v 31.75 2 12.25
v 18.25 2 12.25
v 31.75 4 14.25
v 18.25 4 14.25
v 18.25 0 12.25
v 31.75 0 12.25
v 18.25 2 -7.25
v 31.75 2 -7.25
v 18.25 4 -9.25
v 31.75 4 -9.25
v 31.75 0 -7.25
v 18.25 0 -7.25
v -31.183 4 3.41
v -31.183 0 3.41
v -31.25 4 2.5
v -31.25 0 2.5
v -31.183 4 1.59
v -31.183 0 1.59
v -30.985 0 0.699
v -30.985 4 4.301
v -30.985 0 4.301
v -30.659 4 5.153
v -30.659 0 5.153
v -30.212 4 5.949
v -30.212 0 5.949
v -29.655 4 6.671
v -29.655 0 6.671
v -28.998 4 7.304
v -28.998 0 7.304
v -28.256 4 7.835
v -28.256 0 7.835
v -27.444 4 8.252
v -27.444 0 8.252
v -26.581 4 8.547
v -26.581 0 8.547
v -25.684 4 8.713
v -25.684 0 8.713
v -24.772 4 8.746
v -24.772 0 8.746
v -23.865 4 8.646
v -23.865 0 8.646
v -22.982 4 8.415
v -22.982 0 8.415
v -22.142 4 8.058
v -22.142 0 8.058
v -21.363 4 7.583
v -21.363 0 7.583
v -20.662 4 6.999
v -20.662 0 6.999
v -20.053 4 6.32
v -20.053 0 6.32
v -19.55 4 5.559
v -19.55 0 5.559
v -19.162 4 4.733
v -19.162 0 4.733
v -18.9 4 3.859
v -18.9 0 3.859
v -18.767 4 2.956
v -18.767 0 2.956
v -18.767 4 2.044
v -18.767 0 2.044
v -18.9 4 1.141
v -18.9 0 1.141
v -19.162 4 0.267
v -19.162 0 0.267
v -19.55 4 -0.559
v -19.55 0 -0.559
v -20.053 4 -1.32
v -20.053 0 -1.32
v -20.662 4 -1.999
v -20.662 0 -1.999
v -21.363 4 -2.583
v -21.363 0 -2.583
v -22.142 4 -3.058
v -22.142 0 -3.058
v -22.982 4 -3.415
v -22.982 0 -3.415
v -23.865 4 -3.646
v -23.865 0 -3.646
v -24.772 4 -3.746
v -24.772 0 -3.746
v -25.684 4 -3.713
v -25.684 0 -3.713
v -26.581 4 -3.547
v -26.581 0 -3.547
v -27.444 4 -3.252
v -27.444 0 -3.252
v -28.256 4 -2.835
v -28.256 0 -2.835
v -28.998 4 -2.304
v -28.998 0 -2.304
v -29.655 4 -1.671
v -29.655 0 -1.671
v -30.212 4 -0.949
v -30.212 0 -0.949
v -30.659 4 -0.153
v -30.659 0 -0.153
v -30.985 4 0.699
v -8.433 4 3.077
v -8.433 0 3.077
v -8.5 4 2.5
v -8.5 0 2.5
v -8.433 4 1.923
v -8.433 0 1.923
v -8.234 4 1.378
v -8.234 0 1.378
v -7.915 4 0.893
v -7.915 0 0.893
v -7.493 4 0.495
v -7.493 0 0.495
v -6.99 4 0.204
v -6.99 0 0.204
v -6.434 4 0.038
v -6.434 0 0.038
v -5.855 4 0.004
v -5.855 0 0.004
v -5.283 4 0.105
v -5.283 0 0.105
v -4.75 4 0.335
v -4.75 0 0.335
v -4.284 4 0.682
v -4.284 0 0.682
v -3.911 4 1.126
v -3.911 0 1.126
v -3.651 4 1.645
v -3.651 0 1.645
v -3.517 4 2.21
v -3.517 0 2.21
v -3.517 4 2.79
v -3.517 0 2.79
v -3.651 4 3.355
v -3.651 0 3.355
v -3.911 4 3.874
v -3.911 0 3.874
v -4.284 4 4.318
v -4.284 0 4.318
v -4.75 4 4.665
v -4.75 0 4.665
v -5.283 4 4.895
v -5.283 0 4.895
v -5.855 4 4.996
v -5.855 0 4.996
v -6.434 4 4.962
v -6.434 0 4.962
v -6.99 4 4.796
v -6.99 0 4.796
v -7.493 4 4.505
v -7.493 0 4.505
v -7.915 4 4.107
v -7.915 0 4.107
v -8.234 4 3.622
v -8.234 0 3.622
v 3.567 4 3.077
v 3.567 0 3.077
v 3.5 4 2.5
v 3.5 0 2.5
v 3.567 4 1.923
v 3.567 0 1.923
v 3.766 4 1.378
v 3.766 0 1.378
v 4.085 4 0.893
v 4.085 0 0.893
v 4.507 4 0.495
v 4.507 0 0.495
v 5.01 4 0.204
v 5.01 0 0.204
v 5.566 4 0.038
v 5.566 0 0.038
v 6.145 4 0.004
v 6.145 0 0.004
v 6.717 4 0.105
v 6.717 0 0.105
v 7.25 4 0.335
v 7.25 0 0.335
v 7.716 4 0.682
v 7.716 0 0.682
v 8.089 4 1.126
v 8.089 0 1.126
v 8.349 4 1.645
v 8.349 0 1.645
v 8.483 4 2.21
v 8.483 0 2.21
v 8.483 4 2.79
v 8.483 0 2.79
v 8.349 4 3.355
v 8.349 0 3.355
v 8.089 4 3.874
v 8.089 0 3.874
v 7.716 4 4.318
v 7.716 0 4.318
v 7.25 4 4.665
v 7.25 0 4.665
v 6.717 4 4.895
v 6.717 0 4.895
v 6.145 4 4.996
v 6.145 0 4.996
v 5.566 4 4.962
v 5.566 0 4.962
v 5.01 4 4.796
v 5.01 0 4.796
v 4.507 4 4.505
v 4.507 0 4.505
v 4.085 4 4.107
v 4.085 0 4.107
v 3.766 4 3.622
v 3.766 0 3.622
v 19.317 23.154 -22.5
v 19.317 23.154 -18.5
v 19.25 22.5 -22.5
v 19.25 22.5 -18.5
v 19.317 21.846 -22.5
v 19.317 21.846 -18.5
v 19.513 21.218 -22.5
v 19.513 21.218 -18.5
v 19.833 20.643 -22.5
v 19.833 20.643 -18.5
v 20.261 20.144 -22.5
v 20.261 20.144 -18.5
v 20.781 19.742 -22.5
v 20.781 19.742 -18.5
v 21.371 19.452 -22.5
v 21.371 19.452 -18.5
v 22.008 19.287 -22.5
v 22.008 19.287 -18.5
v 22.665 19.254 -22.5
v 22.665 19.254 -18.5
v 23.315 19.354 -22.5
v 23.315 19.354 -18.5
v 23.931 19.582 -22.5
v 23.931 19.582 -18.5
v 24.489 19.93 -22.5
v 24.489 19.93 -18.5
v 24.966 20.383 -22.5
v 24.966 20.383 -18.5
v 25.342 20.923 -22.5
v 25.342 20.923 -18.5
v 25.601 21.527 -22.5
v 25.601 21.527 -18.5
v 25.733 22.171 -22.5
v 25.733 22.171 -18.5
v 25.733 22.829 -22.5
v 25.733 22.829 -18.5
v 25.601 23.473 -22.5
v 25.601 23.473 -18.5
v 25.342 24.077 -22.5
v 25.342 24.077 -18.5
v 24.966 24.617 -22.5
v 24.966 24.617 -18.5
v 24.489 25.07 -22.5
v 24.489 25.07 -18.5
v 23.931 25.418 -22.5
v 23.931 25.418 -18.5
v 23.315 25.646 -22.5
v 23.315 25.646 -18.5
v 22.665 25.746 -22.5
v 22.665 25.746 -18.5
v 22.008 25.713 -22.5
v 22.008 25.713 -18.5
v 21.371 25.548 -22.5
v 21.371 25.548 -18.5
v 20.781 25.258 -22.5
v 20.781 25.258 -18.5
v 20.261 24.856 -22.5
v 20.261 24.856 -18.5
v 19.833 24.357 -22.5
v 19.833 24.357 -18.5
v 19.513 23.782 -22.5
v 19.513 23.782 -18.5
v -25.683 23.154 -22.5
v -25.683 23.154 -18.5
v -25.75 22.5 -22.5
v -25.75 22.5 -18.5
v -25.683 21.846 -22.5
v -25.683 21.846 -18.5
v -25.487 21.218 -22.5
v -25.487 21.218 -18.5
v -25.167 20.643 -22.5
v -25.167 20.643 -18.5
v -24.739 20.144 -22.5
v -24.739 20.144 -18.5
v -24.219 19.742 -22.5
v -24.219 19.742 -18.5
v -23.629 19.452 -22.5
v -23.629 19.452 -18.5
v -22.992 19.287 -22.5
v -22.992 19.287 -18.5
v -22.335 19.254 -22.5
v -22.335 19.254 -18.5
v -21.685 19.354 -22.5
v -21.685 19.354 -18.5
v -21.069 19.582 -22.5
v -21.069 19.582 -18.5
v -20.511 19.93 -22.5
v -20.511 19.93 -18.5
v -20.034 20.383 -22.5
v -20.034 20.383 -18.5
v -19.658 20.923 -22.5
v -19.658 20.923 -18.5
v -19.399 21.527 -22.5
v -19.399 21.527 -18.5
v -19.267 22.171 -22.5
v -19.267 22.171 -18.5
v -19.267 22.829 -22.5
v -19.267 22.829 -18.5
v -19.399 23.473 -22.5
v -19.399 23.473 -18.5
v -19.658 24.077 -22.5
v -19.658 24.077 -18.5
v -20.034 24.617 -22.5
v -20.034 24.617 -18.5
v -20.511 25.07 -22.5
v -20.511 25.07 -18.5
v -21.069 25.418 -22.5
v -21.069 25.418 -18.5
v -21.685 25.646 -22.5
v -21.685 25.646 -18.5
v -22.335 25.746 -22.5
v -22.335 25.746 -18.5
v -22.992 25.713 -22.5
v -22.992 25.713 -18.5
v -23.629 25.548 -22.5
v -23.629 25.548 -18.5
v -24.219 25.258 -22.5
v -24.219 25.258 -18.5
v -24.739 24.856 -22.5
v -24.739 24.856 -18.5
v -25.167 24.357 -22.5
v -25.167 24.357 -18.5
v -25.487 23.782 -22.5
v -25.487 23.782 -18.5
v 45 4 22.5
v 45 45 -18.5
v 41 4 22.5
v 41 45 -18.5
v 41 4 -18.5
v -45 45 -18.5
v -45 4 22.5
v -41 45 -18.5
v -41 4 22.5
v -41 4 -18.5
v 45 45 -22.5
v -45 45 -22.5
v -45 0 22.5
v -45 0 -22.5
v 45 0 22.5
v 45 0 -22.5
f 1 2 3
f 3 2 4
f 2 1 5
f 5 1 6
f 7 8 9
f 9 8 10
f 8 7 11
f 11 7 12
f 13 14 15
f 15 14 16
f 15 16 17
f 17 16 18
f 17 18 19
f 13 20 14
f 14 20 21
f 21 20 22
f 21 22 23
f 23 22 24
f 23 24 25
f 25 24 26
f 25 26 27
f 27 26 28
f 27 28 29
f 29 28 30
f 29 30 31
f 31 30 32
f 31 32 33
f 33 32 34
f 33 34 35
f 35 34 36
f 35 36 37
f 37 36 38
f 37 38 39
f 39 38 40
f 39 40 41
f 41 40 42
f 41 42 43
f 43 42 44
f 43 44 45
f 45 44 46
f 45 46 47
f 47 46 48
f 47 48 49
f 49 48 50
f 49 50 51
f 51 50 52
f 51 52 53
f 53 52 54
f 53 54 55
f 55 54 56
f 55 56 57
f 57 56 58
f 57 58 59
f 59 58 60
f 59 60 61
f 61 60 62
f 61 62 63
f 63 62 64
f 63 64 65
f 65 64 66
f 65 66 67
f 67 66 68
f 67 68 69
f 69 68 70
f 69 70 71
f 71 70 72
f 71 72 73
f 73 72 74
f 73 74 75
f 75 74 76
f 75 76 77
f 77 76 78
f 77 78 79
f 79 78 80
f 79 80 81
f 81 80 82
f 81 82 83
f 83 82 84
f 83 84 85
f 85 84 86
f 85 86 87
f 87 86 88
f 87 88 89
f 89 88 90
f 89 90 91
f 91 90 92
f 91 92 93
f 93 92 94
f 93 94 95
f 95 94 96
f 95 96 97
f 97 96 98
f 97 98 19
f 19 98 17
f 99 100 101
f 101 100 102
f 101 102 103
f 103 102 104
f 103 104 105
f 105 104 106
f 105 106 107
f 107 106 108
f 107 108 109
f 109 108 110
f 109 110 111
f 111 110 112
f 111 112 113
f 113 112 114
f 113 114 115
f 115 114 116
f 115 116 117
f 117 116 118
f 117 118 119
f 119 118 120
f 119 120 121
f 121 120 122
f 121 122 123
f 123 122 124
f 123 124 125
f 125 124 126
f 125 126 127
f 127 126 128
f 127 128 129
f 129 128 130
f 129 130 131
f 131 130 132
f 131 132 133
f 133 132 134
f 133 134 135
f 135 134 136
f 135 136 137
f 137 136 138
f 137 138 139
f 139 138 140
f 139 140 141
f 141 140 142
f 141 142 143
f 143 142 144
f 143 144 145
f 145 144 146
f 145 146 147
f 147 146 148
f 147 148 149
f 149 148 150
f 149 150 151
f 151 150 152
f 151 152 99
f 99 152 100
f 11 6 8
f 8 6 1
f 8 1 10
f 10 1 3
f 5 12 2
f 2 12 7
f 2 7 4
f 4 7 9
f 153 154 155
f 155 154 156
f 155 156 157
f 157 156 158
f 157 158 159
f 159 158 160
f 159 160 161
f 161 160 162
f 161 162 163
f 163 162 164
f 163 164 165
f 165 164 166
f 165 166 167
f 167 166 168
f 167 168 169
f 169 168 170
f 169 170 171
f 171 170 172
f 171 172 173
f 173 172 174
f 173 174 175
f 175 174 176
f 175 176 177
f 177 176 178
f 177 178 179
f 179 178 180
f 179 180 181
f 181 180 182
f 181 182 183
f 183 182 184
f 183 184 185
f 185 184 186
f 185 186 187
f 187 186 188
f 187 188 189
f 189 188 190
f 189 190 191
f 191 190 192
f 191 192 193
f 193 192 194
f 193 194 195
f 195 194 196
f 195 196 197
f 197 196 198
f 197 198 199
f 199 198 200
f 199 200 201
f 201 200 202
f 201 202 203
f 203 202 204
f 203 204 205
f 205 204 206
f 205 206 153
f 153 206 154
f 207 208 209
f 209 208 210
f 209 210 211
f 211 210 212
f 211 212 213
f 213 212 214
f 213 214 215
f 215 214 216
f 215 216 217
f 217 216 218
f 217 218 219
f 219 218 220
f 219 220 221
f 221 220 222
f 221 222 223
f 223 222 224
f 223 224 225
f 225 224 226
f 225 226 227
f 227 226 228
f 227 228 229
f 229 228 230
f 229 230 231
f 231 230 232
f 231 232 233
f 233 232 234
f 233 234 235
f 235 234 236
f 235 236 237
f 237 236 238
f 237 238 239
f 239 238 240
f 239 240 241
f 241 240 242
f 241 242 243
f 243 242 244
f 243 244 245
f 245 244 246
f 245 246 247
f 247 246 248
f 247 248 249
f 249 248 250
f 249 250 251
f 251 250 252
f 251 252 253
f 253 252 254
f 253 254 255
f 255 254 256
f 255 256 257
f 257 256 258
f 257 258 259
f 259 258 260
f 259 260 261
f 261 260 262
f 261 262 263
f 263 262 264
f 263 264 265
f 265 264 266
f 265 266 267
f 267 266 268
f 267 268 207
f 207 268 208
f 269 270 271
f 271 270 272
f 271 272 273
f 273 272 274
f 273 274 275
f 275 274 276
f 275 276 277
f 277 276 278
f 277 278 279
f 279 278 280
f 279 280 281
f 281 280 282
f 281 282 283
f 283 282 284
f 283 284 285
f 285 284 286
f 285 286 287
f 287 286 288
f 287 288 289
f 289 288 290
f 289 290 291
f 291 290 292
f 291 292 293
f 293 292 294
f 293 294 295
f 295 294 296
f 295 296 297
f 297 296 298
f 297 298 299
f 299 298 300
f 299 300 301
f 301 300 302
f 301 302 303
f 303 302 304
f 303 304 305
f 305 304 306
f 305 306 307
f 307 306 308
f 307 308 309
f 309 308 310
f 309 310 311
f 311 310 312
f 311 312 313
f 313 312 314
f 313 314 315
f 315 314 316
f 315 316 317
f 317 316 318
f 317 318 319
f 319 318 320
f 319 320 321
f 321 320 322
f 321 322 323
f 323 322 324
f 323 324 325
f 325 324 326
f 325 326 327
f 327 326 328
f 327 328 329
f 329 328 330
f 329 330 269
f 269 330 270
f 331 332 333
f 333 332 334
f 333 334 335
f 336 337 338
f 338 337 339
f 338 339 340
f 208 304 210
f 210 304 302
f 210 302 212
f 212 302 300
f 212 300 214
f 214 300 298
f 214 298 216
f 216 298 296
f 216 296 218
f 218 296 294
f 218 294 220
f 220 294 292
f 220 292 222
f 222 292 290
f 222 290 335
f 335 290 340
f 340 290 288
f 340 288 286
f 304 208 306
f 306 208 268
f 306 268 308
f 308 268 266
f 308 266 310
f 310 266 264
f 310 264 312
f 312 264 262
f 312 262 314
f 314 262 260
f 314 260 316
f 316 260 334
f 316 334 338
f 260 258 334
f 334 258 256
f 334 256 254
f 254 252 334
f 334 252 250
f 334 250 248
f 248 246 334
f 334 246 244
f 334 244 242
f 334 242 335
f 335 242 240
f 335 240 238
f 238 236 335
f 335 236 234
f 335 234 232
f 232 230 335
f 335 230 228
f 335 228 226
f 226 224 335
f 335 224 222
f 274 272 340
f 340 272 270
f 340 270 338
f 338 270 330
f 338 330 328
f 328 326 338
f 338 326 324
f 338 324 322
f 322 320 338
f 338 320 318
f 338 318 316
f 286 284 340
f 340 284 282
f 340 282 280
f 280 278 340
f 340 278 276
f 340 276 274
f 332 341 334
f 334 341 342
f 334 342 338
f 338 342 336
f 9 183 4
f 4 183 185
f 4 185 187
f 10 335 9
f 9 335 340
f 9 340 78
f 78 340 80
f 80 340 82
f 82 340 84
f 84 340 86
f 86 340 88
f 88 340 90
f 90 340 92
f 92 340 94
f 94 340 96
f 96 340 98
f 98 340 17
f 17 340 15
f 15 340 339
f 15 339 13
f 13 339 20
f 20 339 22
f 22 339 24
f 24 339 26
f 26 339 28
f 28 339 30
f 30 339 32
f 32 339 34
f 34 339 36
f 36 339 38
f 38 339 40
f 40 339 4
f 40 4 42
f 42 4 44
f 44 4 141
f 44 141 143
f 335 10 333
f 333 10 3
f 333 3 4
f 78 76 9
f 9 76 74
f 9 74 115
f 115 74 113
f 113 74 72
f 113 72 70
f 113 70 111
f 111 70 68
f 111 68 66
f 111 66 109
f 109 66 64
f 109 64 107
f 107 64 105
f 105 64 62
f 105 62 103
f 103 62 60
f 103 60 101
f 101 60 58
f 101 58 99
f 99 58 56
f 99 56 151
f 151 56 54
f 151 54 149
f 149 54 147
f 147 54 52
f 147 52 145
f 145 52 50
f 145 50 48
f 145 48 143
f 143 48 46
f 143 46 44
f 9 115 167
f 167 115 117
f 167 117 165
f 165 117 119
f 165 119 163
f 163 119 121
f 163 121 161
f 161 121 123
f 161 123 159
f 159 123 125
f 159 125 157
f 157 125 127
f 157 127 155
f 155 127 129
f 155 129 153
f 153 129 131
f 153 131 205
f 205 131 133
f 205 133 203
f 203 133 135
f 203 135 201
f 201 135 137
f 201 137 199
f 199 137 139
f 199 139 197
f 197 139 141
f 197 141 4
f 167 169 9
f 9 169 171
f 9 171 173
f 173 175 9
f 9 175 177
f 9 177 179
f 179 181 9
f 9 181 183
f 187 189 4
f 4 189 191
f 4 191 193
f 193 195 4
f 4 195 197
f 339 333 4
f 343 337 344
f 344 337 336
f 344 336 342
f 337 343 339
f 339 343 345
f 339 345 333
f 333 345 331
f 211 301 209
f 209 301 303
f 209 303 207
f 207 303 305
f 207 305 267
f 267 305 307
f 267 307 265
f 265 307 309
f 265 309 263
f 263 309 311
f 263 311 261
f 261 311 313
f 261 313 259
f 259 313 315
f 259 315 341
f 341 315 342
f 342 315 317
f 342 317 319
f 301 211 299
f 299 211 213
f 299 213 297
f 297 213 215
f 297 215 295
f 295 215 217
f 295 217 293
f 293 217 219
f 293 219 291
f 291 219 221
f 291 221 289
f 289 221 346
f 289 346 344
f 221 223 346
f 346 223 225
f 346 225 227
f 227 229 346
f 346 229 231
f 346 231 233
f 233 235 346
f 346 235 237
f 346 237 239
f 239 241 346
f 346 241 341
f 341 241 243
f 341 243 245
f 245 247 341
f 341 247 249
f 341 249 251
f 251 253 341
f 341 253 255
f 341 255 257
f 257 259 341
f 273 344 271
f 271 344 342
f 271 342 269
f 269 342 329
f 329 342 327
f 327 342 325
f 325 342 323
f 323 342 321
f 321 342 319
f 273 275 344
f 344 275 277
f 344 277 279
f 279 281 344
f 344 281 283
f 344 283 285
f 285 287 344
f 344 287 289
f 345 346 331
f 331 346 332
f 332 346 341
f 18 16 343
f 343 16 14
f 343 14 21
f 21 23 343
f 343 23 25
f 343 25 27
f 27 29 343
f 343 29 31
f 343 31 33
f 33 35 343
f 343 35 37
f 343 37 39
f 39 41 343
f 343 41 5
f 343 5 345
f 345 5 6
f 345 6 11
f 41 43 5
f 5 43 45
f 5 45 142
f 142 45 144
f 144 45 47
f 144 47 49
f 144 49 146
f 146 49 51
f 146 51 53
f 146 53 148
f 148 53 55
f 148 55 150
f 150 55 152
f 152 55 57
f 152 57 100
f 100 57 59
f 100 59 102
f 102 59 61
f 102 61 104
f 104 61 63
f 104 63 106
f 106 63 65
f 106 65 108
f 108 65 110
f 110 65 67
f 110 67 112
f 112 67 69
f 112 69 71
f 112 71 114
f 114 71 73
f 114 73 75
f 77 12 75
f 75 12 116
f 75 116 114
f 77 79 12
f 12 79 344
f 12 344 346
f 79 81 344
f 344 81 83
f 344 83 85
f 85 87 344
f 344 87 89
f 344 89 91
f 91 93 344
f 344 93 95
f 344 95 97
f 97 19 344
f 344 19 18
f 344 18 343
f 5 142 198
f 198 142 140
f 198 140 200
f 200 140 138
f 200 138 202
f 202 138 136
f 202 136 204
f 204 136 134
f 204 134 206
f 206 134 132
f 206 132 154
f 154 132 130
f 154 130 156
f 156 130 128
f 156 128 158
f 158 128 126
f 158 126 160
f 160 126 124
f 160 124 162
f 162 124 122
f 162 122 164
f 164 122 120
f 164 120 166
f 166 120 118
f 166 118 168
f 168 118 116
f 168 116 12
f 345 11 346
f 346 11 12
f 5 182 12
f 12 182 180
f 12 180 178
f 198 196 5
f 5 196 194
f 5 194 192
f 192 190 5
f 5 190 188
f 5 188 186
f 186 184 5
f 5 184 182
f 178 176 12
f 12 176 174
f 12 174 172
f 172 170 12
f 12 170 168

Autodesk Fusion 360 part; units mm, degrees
sketch "Sketch1" plane through (0, 0, 0) normal (0, 1, 0) x (1, 0, 0)
  line L0 (45, 22.5) -> (-45, 22.5)
  line L1 (-45, 22.5) -> (-45, -22.5)
  line L2 (-45, -22.5) -> (45, -22.5)
  line L3 (45, -22.5) -> (45, 22.5)
  line L4 (45, 22.5) -> (-45, -22.5) construction
  line L5 (-45, 22.5) -> (45, -22.5) construction
  dimension "d1" = 45
  dimension "d2" = 90
extrude "Extrude1" add sketch "Sketch1" along normal blind 4
sketch "Sketch2" plane through (0, 0, -22.5) normal (0, 0, -1) x (-1, 0, 0)
  line L0 (45, 0) -> (-45, 0)
  line L1 (-45, 0) -> (-45, 45)
  line L2 (-45, 45) -> (45, 45)
  line L3 (45, 45) -> (45, 0)
  point P0 (-45, 0)
  point P1 (45, 0)
  dimension "d12" = 45
extrude "Extrude4" add sketch "Sketch2" against normal blind 4
sketch "Sketch3" plane through (-45, 0, 0) normal (-1, 0, 0) x (0, 0, 1)
  line L0 (-22.5, 0) -> (22.5, 0)
  line L1 (22.5, 0) -> (22.5, 4)
  line L2 (22.5, 4) -> (-18.5, 4)
  line L3 (-22.5, 45) -> (-22.5, 0)
  line L4 (-18.5, 45) -> (-18.5, 4)
  line L5 (22.5, 4) -> (-18.5, 45)
  line L6 (-18.5, 4) -> (-18.5, 45)
  line L7 (-18.5, 45) -> (-22.5, 45)
extrude "Extrude3" add sketch "Sketch3" against normal blind 4 contours L2 L4 L5 L6
mirror "Mirror1" about plane through (0, 0, 0) normal (1, 0, 0) of "Extrude3"
sketch "Sketch4" plane through (0, 0, -18.5) normal (0, 0, 1) x (1, 0, 0)
  line L0 (41, 4) -> (41, 45)
  line L1 (41, 45) -> (-41, 45)
  line L2 (-41, 45) -> (-41, 4)
  line L3 (-41, 4) -> (41, 4)
  circle A0 centre (-22.5, 22.5) radius 3.25
  line L4 (-22.5, 22.5) -> (-16, 22.5) construction
  line L5 (45, 45) -> (-45, 45)
  line L6 (-45, 0) -> (45, 0)
  line L7 (0, 0) -> (0, 21) construction
  circle A1 centre (22.5, 22.5) radius 3.25
  dimension "d15" = 6.5
  dimension "d16" = 45
extrude "Extrude5" cut sketch "Sketch4" against normal through all contours A0 | A1
sketch "Sketch5" plane through (0, 0, 0) normal (0, -1, 0) x (1, 0, 0)
  line L0 (45, -22.5) -> (45, 22.5)
  line L1 (45, 22.5) -> (-45, 22.5)
  line L2 (-45, 22.5) -> (-45, -22.5)
  line L3 (-45, -22.5) -> (45, -22.5)
  circle A0 centre (-25, 2.5) radius 6.25
  line L4 (18.25, 12.25) -> (31.75, 12.25)
  line L5 (31.75, 12.25) -> (31.75, -7.25)
  line L6 (31.75, -7.25) -> (18.25, -7.25)
  line L7 (18.25, -7.25) -> (18.25, 12.25)
  line L8 (-25, 2.5) -> (31.5002, 2.5) construction
  line L9 (-45, -22.5) -> (45, -22.5)
  line L10 (25, -13) -> (25, 19) construction
  line L11 (-25, 2.5) -> (-25, -11) construction
  line L12 (0, 0) -> (0, -11) construction
  circle A1 centre (-6, 2.5) radius 2.5
  circle A2 centre (6, 2.5) radius 2.5
  dimension "d18" = 12.5
  dimension "d19" = 19.5
  dimension "d20" = 13.5
  dimension "d21" = 25
  dimension "d22" = 50
  dimension "d26" = 5
  dimension "d27" = 12
extrude "Extrude6" cut sketch "Sketch5" against normal blind 4 contours A0 | L4 L5 L6 L7 | A1 | A2
chamfer "Chamfer1" distance 2 angle 45 2 edges at (25, 4, -7.25) (25, 4, 12.25)
